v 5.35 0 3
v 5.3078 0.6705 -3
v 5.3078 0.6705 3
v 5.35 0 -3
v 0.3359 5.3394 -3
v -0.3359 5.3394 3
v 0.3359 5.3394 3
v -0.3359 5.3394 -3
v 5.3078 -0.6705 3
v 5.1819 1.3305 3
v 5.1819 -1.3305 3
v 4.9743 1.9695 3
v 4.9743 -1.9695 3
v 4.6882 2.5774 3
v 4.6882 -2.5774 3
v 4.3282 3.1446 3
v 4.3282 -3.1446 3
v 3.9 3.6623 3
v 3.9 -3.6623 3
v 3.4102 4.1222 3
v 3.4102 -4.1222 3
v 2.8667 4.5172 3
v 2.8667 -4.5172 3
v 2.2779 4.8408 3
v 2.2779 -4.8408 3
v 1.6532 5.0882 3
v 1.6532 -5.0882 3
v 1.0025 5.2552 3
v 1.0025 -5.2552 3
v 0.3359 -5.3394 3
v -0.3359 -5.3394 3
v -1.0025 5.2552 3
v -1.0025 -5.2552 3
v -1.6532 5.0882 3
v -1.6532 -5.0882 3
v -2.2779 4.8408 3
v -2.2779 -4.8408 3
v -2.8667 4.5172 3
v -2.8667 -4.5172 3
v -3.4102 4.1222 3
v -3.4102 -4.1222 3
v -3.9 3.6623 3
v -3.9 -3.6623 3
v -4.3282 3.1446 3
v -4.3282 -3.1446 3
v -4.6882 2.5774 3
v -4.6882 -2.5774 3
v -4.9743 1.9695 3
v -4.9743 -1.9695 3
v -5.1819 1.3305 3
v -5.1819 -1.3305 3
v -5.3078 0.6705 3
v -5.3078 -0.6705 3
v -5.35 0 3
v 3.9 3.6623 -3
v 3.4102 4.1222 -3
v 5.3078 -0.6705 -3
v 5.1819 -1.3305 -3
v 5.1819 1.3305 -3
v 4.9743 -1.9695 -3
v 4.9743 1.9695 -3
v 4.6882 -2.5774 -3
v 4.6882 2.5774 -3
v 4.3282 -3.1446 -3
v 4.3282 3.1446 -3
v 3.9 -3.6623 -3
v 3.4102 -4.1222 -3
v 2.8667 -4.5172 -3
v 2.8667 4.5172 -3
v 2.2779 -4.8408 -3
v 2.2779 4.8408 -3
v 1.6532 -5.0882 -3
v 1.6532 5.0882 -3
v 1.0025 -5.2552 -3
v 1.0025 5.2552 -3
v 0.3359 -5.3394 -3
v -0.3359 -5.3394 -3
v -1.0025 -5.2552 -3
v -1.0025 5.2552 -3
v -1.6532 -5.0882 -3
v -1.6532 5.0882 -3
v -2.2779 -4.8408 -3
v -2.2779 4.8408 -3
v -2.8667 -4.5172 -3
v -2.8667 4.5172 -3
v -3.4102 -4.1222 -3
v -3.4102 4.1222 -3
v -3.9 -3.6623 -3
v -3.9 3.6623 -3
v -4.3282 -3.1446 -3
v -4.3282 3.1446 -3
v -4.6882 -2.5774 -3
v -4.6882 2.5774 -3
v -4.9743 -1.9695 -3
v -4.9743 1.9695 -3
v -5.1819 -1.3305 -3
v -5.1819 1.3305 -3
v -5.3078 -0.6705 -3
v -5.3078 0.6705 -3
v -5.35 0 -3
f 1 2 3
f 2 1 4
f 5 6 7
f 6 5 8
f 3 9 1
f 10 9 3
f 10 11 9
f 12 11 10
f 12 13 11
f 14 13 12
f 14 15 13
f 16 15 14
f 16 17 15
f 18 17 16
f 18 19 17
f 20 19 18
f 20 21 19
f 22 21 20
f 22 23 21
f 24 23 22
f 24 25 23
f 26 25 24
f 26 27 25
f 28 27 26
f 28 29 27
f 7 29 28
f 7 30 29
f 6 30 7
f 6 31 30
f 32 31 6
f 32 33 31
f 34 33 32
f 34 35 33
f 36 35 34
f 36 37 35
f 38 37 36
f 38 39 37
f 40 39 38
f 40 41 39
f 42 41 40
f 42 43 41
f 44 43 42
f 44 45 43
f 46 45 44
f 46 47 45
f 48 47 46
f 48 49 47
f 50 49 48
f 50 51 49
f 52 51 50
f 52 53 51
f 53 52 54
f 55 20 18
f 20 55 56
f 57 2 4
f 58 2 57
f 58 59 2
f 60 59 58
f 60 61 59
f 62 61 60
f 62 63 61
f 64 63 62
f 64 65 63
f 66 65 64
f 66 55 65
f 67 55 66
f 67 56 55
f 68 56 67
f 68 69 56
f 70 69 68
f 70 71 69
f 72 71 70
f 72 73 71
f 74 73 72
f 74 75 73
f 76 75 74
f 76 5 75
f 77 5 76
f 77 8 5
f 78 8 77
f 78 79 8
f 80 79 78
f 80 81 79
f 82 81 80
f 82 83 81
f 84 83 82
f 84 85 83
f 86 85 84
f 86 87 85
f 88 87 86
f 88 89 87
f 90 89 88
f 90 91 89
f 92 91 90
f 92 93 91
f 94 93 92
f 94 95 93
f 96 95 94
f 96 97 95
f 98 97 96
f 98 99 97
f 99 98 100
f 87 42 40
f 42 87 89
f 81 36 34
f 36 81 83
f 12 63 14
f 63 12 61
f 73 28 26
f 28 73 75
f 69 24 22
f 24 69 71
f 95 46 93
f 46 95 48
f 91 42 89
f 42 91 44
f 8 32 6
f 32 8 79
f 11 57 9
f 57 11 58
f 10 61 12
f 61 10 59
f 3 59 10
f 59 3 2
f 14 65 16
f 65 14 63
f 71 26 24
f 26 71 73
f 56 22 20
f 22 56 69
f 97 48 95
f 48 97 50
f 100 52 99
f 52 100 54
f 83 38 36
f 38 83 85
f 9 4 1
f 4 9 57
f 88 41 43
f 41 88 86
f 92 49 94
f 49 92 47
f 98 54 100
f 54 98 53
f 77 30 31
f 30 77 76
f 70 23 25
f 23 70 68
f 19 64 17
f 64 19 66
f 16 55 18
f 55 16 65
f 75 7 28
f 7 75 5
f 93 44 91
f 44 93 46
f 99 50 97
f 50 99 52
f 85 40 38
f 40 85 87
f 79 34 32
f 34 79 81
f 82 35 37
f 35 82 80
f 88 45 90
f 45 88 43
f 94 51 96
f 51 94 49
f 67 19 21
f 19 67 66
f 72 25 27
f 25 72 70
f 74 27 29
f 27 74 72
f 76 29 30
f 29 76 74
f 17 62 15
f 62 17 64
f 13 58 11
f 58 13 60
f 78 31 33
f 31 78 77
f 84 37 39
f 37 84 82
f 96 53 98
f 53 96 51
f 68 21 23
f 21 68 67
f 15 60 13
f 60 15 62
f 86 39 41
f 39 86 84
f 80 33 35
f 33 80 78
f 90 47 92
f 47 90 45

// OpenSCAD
$fn = 50;


difference() {
	union() {
		translate(v = [0, 0, -3.0000000000]) {
			cylinder(h = 6, r = 5.3500000000);
		}
	}
	union() {
		translate(v = [0, 0, -100.0000000000]) {
			cylinder(h = 200, r = 0);
		}
	}
}
